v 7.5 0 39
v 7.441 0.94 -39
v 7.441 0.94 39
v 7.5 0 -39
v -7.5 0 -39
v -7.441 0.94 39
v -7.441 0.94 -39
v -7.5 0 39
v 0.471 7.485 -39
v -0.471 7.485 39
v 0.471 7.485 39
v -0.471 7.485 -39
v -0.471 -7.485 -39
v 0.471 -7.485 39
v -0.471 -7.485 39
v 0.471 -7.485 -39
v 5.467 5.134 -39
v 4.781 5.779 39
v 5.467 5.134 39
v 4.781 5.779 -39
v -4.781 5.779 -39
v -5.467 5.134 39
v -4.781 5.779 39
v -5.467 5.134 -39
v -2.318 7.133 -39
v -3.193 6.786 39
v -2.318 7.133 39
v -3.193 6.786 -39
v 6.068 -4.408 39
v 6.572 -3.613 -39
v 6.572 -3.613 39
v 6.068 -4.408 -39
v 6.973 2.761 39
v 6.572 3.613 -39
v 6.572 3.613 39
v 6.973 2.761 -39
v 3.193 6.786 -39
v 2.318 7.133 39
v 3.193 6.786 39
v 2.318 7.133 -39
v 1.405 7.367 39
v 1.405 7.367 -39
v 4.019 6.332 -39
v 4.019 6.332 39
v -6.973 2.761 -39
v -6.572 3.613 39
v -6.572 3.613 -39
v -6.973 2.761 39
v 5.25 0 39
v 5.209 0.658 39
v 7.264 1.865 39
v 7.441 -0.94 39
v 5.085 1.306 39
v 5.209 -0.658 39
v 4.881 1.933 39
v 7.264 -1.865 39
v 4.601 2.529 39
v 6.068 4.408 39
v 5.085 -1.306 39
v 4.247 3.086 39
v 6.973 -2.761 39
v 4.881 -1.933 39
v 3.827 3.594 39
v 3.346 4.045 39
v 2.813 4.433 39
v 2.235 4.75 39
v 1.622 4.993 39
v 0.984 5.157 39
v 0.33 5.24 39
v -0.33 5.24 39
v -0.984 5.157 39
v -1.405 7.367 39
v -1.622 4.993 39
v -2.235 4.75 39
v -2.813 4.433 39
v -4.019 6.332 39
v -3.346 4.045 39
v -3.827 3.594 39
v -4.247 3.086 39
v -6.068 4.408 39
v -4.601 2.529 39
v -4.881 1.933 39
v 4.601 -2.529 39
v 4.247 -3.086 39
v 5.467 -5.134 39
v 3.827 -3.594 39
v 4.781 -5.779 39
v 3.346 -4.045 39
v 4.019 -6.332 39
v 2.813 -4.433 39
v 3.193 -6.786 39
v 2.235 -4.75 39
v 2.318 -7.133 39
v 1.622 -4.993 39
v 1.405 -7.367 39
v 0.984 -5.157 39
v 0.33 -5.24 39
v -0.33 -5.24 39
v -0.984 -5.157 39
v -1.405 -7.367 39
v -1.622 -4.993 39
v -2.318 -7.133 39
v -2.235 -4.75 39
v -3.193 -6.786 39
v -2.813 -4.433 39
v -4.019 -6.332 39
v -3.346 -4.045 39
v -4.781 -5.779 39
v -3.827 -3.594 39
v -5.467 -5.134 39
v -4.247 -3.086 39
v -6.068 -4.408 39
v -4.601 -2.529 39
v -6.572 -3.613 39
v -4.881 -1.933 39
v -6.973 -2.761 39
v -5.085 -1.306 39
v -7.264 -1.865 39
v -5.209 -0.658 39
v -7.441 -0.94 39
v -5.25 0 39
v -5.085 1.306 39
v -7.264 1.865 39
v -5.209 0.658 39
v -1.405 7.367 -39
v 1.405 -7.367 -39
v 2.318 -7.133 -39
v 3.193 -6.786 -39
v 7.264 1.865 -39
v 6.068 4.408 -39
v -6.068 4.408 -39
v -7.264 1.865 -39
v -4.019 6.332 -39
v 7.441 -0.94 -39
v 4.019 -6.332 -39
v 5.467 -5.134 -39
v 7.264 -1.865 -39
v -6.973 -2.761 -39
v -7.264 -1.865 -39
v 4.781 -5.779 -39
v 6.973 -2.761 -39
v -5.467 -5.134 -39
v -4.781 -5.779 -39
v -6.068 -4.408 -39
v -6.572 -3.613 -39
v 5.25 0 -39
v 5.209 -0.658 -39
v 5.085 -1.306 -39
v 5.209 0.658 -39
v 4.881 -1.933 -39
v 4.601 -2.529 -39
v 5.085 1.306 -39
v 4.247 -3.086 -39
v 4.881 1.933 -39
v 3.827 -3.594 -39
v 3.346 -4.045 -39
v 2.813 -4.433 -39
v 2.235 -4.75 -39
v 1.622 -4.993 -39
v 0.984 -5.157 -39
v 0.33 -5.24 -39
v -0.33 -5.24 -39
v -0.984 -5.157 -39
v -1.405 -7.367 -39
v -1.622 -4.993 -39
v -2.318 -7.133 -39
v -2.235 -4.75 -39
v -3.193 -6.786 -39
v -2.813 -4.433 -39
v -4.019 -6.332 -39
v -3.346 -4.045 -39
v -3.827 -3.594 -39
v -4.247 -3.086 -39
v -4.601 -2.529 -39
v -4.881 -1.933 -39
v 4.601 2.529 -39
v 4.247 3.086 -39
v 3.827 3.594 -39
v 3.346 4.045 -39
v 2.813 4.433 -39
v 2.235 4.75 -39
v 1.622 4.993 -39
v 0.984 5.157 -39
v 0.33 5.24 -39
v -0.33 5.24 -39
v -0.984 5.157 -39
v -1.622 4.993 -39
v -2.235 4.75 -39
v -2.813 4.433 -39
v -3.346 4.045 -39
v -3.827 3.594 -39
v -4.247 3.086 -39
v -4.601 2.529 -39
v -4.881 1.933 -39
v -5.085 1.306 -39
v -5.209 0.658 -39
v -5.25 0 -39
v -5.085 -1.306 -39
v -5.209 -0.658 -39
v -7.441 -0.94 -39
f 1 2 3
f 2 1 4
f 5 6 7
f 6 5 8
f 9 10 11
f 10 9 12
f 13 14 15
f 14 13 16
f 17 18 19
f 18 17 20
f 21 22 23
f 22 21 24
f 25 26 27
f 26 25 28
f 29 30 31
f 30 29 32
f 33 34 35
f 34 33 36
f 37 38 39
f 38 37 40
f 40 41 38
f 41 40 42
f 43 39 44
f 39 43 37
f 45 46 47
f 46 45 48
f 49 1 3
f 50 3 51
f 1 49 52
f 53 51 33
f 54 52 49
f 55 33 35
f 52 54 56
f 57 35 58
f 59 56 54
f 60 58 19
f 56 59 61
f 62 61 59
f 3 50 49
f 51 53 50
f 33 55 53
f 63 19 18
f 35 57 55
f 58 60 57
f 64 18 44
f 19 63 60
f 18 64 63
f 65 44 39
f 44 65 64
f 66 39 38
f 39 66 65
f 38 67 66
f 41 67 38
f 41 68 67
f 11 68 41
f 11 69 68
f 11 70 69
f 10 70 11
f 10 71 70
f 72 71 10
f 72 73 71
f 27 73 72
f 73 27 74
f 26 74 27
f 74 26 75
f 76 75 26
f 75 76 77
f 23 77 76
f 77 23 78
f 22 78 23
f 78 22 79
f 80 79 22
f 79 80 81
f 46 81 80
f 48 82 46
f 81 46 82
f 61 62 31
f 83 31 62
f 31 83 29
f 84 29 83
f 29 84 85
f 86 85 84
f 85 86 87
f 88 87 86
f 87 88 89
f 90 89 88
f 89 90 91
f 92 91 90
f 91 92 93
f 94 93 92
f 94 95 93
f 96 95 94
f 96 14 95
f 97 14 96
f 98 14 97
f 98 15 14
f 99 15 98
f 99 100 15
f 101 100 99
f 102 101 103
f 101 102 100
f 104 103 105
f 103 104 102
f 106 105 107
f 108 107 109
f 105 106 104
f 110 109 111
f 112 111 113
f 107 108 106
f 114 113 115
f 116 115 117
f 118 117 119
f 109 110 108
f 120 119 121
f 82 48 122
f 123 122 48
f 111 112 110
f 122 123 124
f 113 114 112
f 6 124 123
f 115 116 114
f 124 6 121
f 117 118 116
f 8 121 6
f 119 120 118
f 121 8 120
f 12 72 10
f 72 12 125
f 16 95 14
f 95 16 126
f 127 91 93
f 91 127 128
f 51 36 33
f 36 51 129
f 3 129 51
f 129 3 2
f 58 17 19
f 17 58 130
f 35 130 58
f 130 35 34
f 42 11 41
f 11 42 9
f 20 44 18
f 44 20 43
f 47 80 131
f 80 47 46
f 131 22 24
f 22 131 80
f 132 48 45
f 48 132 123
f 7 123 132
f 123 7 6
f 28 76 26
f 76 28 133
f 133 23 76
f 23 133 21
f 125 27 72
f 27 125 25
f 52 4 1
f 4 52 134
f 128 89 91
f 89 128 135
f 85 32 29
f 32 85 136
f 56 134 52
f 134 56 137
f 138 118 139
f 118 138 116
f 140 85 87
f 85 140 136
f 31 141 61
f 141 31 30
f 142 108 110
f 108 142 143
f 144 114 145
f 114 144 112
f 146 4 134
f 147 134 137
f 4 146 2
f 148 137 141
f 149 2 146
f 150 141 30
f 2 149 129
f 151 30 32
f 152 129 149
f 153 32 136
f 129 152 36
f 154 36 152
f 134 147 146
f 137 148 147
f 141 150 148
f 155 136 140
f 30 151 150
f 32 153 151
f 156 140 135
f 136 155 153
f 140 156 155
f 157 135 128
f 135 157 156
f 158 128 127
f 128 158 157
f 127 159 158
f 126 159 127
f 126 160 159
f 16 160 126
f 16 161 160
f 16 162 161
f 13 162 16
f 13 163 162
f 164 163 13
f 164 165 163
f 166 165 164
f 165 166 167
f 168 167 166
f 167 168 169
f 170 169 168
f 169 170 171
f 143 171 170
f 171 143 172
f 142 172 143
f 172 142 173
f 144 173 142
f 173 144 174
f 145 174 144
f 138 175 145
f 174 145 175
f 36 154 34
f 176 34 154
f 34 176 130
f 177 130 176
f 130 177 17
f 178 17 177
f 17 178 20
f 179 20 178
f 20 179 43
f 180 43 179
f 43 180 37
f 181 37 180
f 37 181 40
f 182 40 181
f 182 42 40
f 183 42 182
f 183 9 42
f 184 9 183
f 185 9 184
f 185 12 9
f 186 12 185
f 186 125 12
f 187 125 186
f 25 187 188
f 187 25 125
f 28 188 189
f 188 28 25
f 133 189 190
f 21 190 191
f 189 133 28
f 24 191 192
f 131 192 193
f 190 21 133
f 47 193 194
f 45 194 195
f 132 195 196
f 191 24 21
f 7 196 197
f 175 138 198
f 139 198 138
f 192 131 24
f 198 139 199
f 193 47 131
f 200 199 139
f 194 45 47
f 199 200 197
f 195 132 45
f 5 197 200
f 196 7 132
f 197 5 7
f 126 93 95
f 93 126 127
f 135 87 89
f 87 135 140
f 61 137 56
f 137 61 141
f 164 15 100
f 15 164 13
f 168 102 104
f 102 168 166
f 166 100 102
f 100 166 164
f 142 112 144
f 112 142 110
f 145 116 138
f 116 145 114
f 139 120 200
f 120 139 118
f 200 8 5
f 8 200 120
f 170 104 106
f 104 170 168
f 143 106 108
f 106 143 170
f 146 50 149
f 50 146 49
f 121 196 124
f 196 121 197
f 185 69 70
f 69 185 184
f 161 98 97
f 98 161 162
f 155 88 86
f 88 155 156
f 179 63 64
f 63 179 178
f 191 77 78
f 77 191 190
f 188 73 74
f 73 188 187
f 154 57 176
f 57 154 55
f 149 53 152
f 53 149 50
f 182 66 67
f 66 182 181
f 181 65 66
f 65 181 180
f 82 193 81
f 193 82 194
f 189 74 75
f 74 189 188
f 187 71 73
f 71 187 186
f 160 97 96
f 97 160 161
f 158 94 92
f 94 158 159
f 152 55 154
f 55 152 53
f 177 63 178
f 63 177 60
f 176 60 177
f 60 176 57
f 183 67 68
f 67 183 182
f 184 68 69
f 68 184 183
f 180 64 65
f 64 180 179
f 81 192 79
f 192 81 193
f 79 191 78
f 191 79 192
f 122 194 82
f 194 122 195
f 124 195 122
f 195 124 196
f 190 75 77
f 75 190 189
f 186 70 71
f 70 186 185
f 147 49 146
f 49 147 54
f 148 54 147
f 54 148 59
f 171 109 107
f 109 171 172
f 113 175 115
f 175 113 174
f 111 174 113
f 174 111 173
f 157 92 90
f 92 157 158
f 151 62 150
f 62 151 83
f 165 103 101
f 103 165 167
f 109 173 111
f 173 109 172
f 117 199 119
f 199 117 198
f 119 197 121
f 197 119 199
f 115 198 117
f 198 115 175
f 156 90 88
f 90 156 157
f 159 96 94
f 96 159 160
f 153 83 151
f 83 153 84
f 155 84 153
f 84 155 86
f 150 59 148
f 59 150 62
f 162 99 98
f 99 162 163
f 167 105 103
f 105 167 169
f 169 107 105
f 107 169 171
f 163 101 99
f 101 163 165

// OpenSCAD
$fn = 50;


difference() {
	union() {
		translate(v = [0, 0, -39.0000000000]) {
			cylinder(h = 78, r = 7.5000000000);
		}
	}
	union() {
		translate(v = [0, 0, -100.0000000000]) {
			cylinder(h = 200, r = 5.2500000000);
		}
	}
}
